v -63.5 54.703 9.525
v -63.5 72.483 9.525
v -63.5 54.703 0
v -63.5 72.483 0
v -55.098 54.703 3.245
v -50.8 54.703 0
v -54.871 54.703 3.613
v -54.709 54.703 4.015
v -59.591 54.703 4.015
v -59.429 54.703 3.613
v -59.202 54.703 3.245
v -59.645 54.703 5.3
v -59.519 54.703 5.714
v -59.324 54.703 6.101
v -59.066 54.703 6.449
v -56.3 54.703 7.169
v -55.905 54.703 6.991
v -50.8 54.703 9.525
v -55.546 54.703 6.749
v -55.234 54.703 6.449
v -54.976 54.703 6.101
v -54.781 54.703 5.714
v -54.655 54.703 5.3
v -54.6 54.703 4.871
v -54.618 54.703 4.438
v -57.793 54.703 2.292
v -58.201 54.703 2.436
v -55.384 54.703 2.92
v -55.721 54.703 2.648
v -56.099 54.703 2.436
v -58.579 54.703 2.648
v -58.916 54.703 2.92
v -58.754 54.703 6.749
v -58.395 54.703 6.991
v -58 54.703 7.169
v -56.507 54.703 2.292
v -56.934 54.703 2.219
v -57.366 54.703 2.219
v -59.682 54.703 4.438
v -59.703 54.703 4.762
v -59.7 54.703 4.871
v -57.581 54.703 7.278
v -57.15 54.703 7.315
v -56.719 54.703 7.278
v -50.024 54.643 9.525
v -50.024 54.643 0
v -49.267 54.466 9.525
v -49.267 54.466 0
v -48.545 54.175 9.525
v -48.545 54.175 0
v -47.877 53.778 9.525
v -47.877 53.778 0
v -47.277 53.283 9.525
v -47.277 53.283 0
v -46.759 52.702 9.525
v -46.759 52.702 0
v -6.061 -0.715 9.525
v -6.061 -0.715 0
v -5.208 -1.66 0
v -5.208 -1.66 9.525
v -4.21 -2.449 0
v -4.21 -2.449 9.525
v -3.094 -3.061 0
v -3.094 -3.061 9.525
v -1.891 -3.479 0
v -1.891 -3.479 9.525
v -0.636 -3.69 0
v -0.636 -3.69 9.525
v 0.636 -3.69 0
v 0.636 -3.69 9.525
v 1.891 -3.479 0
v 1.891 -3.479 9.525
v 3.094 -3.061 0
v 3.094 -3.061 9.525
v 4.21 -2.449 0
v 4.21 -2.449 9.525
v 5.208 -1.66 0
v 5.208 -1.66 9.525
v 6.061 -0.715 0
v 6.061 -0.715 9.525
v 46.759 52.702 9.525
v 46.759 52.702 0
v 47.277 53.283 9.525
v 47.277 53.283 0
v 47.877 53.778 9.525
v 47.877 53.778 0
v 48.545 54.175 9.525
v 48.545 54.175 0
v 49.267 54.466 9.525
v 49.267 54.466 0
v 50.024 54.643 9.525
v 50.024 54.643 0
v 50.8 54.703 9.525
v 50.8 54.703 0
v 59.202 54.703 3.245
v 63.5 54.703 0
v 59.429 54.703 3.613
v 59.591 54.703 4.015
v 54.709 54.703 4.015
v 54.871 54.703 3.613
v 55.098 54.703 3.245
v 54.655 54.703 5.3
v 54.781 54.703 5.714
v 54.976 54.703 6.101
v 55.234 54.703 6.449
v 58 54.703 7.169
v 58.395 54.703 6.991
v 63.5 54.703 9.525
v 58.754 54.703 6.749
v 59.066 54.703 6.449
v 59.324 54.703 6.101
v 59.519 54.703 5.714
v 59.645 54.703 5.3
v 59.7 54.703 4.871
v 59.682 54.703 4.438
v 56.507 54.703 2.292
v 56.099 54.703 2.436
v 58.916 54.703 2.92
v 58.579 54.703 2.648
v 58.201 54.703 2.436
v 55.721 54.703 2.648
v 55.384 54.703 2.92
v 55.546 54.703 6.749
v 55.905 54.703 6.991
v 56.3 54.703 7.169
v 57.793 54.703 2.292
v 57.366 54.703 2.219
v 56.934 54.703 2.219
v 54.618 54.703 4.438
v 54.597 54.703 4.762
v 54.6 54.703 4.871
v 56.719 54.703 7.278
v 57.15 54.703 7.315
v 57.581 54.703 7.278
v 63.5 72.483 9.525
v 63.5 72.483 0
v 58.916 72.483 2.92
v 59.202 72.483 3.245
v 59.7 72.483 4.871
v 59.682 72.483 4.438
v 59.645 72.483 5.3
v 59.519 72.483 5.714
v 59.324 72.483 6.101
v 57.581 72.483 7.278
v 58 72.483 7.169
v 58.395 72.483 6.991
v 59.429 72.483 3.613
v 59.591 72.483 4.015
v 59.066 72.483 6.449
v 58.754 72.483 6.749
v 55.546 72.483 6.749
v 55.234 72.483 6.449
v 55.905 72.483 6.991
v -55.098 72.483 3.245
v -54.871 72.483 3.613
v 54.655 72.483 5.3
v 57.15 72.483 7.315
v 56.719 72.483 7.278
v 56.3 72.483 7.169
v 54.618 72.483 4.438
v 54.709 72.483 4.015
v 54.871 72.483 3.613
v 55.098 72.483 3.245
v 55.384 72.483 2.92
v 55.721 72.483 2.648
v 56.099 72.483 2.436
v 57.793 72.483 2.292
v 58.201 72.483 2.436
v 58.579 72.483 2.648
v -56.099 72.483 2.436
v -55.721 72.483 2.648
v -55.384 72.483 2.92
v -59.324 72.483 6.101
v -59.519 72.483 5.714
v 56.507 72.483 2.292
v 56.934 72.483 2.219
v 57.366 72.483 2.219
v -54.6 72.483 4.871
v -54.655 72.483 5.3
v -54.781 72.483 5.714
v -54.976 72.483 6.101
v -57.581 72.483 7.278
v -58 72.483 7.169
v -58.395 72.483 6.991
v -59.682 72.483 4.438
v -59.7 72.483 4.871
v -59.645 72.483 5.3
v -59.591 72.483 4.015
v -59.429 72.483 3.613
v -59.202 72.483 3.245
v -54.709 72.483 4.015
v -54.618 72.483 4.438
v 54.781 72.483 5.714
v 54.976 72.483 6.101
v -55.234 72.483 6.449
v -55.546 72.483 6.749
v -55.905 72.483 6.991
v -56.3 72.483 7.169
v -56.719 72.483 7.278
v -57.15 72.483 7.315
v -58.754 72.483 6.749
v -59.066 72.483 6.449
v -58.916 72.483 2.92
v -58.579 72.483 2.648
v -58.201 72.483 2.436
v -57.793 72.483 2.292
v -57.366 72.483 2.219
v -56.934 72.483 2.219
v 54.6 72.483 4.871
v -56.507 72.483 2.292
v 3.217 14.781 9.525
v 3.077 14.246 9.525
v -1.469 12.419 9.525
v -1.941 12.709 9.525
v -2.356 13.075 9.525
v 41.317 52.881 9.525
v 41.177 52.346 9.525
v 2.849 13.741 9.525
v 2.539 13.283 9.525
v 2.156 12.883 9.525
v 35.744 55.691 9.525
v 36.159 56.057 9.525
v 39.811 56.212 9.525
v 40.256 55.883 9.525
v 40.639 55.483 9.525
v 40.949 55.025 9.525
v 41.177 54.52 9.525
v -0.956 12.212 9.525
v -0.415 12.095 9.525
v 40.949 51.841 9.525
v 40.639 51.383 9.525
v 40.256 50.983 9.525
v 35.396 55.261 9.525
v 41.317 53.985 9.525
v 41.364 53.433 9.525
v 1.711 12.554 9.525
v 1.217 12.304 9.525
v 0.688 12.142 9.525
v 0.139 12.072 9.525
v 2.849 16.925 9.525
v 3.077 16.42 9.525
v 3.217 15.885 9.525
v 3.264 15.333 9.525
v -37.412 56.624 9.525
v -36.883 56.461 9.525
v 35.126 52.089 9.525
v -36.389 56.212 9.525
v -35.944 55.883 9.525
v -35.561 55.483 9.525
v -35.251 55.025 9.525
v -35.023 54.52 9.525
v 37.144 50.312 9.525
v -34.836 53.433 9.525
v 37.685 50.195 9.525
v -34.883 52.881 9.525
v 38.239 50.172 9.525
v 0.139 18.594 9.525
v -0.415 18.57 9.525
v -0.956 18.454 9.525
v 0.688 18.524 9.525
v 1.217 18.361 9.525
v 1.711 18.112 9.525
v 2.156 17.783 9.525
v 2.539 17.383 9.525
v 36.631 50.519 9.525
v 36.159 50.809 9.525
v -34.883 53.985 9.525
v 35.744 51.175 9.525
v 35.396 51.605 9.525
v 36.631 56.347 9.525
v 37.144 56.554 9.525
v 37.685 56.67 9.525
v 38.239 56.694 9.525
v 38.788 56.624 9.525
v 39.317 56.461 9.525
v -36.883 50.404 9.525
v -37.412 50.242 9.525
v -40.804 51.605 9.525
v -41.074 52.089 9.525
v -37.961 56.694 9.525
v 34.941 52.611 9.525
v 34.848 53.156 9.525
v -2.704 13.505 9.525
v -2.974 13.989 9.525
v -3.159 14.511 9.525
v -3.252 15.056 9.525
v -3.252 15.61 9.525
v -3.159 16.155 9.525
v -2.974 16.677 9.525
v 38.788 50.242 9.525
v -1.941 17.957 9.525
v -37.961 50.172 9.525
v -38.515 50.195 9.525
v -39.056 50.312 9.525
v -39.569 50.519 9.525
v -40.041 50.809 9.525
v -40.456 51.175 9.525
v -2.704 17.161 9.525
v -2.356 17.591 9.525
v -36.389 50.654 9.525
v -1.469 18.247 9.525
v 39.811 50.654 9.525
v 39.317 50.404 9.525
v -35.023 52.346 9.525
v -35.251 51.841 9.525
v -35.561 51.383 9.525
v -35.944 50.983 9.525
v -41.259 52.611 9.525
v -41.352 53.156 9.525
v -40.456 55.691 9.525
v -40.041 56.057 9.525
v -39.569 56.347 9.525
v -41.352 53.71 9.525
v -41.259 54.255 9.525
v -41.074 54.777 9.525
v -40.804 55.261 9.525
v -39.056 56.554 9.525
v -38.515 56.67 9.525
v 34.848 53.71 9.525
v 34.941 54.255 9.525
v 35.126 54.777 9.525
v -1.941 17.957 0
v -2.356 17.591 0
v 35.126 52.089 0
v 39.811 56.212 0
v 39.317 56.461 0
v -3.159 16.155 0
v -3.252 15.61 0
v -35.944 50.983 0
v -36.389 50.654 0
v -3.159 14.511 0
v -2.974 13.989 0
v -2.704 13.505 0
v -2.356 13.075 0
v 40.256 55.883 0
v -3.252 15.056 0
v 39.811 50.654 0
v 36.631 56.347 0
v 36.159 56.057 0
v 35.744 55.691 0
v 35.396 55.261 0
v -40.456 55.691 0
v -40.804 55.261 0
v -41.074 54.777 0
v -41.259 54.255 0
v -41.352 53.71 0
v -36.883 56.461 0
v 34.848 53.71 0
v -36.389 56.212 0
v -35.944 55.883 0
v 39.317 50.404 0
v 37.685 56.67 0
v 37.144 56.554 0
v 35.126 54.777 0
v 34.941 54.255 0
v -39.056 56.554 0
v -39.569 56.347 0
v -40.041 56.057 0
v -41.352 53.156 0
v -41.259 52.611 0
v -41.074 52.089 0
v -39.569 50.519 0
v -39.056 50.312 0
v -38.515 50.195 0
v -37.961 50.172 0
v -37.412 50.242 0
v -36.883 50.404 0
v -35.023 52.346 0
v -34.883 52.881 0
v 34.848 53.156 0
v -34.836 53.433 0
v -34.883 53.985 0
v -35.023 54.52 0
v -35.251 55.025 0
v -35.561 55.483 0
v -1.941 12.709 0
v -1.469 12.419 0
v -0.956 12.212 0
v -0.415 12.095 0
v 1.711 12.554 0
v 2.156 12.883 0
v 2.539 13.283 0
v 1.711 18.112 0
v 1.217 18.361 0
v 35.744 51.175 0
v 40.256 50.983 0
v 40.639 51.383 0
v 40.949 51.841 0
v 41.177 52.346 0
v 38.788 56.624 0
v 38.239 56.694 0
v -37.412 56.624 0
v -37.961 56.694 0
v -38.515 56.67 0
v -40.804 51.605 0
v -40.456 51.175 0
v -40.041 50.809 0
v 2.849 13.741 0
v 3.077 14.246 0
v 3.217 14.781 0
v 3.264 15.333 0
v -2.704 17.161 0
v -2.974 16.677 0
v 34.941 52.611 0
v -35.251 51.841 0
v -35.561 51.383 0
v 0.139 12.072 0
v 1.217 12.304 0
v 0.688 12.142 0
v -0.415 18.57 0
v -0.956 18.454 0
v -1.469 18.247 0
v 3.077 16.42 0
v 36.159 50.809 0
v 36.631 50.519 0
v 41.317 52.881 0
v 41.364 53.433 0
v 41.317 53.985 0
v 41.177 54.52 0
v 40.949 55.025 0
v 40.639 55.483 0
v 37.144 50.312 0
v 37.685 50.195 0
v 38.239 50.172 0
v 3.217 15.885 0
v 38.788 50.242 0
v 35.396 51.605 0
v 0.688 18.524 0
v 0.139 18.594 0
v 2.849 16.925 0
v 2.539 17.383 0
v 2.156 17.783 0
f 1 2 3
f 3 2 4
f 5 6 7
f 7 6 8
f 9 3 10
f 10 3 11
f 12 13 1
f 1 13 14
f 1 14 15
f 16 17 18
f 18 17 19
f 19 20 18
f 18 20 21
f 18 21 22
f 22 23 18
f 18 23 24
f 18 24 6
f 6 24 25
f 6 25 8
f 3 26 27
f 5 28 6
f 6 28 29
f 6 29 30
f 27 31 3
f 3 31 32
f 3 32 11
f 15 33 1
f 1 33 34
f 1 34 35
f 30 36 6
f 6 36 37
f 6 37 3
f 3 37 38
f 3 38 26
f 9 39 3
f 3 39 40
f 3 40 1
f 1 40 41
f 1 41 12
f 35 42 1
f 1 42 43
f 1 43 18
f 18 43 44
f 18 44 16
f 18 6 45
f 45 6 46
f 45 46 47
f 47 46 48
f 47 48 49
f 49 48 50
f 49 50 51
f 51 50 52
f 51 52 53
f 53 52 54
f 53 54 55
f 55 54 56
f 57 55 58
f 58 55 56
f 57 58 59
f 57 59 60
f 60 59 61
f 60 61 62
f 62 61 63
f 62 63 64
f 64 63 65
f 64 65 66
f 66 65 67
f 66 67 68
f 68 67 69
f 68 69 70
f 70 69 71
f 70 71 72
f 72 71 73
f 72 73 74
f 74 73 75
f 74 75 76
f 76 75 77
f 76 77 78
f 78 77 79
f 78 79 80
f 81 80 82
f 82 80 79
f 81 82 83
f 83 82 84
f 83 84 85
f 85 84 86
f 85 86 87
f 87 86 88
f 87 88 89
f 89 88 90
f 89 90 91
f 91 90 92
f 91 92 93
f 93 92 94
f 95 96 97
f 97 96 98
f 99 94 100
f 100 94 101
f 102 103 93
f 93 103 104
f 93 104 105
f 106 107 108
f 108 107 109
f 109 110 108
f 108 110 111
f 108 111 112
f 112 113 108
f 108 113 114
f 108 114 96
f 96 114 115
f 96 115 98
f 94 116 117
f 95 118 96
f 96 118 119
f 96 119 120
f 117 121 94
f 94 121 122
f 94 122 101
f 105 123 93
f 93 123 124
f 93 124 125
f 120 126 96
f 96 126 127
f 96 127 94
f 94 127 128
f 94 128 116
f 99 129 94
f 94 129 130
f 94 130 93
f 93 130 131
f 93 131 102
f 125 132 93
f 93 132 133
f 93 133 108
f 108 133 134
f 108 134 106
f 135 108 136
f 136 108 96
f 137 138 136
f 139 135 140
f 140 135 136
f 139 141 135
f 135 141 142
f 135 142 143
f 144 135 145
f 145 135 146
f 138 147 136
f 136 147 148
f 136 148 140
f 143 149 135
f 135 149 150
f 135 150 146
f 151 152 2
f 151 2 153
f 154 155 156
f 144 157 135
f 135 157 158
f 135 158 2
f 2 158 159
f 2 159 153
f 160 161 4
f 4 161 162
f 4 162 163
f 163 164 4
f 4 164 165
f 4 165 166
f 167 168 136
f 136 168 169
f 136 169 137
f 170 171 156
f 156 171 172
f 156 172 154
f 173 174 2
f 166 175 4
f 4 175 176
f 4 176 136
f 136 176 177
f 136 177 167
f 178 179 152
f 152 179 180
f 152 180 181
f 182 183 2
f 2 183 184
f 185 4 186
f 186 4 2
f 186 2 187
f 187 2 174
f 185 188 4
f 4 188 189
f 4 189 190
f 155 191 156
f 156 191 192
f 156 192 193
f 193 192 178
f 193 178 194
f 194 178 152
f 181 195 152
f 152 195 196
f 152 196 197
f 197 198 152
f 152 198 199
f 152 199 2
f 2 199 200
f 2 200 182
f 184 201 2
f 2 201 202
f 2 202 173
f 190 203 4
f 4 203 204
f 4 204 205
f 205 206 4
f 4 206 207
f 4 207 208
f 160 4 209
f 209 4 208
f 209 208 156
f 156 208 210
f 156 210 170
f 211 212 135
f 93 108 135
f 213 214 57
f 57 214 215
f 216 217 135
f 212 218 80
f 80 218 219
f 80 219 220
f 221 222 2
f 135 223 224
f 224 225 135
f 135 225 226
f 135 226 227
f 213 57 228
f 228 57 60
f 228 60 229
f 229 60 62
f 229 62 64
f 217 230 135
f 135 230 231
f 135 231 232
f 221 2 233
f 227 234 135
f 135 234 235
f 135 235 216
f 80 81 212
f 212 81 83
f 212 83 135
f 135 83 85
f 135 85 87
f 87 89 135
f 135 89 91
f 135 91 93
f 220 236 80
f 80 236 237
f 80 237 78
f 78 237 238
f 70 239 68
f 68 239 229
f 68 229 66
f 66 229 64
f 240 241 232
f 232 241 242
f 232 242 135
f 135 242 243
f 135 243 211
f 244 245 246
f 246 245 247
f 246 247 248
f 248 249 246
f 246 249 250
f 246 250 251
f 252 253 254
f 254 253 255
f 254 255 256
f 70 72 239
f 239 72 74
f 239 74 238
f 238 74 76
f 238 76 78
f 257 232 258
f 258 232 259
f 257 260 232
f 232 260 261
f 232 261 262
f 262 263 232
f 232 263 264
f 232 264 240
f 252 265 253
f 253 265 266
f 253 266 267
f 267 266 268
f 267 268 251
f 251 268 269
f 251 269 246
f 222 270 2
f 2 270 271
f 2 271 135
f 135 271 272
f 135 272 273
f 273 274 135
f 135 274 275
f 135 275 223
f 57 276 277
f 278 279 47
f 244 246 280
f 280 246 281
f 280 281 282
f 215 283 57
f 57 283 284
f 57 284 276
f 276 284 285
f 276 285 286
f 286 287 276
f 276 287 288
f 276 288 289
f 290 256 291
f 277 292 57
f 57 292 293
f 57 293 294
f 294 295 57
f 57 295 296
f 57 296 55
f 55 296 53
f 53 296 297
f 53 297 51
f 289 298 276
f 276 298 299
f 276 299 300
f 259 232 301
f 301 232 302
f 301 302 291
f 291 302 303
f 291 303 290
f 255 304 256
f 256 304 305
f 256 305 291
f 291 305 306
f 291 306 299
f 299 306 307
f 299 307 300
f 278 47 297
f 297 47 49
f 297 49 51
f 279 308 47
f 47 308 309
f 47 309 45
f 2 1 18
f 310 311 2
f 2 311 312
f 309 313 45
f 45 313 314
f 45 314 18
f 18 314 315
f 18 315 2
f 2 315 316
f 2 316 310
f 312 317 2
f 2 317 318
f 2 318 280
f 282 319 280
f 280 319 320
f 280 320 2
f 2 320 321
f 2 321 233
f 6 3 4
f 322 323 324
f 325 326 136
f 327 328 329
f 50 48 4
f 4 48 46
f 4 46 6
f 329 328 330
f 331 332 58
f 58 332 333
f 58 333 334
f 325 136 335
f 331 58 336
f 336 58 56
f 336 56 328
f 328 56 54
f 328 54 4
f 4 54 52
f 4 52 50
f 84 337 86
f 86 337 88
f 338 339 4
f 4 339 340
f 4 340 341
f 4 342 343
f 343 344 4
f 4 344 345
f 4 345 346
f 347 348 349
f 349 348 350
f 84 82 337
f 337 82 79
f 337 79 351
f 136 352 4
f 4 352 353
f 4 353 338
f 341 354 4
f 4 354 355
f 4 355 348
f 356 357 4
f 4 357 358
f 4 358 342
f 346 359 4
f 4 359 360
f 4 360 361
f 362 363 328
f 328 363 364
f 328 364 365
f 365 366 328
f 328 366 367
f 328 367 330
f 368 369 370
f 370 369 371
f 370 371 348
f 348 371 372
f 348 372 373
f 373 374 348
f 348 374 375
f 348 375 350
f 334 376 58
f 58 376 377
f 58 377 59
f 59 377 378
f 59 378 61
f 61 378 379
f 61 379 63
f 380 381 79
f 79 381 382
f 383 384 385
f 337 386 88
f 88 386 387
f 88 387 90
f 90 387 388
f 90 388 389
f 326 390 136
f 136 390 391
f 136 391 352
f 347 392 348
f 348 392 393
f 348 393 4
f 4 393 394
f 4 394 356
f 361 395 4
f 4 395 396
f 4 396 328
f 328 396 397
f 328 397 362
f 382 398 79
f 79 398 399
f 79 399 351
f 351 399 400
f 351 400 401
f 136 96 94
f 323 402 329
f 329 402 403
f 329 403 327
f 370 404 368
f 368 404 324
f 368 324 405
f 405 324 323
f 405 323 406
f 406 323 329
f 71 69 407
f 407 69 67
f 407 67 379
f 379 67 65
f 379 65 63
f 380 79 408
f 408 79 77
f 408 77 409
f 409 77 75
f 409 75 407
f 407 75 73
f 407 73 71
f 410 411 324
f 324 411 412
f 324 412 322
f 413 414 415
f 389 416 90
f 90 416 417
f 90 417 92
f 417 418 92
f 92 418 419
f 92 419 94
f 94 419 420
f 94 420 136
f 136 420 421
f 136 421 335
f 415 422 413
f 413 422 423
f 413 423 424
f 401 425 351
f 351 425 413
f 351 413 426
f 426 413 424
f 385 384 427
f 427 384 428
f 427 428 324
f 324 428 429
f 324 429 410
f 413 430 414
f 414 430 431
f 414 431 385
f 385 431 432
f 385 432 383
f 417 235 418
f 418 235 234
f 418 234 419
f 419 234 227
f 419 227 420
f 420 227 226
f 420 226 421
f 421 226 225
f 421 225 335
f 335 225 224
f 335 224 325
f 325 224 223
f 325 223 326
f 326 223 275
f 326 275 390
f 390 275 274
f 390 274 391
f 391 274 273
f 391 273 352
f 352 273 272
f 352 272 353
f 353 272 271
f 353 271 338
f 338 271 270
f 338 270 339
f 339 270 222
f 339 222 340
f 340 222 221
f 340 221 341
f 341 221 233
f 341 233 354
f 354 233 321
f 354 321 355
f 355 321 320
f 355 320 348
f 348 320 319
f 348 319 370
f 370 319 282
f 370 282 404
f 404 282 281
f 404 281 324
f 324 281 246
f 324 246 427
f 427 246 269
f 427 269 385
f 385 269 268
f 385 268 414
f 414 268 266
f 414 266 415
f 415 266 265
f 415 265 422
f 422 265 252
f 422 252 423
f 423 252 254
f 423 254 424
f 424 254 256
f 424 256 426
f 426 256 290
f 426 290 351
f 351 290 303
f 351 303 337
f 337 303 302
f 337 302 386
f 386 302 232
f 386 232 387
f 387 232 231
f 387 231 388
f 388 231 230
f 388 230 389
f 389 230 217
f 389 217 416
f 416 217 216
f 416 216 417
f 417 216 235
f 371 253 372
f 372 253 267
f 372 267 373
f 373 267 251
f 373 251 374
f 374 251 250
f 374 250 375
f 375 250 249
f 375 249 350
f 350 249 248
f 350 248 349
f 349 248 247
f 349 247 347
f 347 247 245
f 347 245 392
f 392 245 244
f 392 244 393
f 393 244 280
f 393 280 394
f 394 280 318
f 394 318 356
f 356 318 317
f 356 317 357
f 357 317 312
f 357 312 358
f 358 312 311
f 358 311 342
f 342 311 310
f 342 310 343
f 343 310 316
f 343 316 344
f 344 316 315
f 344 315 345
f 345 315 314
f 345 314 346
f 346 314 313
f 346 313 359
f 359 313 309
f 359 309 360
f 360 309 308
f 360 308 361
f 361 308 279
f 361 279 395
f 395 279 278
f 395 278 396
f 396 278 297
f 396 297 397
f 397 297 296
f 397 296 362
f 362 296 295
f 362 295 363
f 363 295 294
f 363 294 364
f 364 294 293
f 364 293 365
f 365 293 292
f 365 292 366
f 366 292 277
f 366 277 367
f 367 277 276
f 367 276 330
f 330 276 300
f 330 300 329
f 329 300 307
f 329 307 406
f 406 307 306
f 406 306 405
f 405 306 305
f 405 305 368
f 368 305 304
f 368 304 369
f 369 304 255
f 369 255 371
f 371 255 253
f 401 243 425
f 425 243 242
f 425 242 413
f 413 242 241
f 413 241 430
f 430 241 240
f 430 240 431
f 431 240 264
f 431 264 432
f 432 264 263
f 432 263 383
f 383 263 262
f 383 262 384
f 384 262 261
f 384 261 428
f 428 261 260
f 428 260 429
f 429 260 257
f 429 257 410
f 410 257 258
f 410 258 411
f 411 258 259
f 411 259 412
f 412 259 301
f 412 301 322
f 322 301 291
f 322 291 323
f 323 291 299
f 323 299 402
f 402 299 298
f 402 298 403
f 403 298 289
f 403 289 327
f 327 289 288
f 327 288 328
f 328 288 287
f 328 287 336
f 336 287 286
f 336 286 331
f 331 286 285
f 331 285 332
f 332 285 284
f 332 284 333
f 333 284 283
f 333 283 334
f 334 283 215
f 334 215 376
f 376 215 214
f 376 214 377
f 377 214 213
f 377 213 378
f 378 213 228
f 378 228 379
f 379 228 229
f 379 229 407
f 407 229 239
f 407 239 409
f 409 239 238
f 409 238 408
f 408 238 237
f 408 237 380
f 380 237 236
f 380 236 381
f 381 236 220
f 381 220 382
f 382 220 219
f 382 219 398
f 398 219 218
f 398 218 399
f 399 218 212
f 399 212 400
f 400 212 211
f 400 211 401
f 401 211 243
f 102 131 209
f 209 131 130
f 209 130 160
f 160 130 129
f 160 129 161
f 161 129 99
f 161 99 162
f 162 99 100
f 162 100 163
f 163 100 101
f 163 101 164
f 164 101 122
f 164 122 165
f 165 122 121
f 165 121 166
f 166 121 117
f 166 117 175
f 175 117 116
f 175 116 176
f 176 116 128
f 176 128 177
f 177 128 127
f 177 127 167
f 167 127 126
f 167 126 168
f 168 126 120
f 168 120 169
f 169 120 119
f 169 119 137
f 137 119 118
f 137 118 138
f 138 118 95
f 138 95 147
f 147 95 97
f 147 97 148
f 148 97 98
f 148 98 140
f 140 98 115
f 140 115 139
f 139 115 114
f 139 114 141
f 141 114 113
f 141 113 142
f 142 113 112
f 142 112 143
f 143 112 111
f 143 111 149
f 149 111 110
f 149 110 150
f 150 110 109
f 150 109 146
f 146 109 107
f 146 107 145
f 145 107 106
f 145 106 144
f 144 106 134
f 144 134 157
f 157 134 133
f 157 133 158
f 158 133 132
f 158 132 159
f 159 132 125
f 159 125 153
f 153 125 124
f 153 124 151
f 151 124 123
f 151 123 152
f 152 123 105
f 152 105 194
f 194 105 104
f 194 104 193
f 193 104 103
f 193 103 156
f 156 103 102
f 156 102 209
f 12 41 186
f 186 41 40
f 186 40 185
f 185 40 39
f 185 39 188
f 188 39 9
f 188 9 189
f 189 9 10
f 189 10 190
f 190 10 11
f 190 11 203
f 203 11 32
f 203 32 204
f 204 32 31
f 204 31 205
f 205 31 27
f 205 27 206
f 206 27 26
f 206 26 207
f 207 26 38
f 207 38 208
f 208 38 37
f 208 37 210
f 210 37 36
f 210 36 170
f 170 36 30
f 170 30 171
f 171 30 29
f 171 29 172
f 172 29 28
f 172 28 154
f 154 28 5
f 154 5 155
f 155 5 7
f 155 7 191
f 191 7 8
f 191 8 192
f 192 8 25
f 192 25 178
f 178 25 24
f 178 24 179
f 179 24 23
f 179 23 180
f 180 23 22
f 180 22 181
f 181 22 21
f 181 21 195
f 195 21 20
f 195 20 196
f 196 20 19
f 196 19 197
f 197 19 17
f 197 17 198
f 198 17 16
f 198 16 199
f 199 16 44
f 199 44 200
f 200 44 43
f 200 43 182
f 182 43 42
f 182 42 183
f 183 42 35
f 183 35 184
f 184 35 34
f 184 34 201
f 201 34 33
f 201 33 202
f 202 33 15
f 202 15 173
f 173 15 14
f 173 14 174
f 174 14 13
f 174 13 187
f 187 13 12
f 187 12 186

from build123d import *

# Parameters (mm, degrees)
BOSS_EXTRUDE1_DEPTH      = 9.525
F_0_257_DIAMETER_HOLE1_D = 6.5278
F_1_4_20_TAPPED_HOLE1_D  = 5.1054


with BuildPart() as part:
    # Sketch2 → Boss-Extrude1 (new body)
    with BuildSketch(Plane.XY):
        with BuildLine():
            Line((46.759190155, 52.701629037), (6.061214767, -0.715064976))
            ThreePointArc((6.061214767, -0.715064976), (0, -3.717048568), (-6.061214767, -0.715064976))
            Line((-6.061214767, -0.715064976), (-46.759190155, 52.701629037))
            ThreePointArc((-46.759190155, 52.701629037), (-48.545369458, 54.175208138), (-50.8, 54.702951432))
            Line((-50.8, 54.702951432), (-63.5, 54.702951432))
            Line((-63.5, 54.702951432), (-63.5, 72.482951432))
            Line((-63.5, 72.482951432), (63.5, 72.482951432))
            Line((63.5, 72.482951432), (63.5, 54.702951432))
            Line((63.5, 54.702951432), (50.8, 54.702951432))
            ThreePointArc((50.8, 54.702951432), (48.545369458, 54.175208138), (46.759190155, 52.701629037))
        make_face()
    extrude(amount=BOSS_EXTRUDE1_DEPTH)

    # F (0.257) Diameter Hole1 (through all)
    with Locations(Plane.XY.offset(9.525)):
        with Locations((0, 15.332951432), (-38.1, 53.432951432), (38.1, 53.432951432)):
            Hole(F_0_257_DIAMETER_HOLE1_D / 2)

    # 1/4-20 Tapped Hole1 (through all)
    with Locations(Plane(origin=(0, 72.482951432, 0), x_dir=(1, 0, 0), z_dir=(0, 1, 0))):
        with Locations((-57.15, -4.7625), (57.15, -4.7625)):
            Hole(F_1_4_20_TAPPED_HOLE1_D / 2)


solid = part.part
